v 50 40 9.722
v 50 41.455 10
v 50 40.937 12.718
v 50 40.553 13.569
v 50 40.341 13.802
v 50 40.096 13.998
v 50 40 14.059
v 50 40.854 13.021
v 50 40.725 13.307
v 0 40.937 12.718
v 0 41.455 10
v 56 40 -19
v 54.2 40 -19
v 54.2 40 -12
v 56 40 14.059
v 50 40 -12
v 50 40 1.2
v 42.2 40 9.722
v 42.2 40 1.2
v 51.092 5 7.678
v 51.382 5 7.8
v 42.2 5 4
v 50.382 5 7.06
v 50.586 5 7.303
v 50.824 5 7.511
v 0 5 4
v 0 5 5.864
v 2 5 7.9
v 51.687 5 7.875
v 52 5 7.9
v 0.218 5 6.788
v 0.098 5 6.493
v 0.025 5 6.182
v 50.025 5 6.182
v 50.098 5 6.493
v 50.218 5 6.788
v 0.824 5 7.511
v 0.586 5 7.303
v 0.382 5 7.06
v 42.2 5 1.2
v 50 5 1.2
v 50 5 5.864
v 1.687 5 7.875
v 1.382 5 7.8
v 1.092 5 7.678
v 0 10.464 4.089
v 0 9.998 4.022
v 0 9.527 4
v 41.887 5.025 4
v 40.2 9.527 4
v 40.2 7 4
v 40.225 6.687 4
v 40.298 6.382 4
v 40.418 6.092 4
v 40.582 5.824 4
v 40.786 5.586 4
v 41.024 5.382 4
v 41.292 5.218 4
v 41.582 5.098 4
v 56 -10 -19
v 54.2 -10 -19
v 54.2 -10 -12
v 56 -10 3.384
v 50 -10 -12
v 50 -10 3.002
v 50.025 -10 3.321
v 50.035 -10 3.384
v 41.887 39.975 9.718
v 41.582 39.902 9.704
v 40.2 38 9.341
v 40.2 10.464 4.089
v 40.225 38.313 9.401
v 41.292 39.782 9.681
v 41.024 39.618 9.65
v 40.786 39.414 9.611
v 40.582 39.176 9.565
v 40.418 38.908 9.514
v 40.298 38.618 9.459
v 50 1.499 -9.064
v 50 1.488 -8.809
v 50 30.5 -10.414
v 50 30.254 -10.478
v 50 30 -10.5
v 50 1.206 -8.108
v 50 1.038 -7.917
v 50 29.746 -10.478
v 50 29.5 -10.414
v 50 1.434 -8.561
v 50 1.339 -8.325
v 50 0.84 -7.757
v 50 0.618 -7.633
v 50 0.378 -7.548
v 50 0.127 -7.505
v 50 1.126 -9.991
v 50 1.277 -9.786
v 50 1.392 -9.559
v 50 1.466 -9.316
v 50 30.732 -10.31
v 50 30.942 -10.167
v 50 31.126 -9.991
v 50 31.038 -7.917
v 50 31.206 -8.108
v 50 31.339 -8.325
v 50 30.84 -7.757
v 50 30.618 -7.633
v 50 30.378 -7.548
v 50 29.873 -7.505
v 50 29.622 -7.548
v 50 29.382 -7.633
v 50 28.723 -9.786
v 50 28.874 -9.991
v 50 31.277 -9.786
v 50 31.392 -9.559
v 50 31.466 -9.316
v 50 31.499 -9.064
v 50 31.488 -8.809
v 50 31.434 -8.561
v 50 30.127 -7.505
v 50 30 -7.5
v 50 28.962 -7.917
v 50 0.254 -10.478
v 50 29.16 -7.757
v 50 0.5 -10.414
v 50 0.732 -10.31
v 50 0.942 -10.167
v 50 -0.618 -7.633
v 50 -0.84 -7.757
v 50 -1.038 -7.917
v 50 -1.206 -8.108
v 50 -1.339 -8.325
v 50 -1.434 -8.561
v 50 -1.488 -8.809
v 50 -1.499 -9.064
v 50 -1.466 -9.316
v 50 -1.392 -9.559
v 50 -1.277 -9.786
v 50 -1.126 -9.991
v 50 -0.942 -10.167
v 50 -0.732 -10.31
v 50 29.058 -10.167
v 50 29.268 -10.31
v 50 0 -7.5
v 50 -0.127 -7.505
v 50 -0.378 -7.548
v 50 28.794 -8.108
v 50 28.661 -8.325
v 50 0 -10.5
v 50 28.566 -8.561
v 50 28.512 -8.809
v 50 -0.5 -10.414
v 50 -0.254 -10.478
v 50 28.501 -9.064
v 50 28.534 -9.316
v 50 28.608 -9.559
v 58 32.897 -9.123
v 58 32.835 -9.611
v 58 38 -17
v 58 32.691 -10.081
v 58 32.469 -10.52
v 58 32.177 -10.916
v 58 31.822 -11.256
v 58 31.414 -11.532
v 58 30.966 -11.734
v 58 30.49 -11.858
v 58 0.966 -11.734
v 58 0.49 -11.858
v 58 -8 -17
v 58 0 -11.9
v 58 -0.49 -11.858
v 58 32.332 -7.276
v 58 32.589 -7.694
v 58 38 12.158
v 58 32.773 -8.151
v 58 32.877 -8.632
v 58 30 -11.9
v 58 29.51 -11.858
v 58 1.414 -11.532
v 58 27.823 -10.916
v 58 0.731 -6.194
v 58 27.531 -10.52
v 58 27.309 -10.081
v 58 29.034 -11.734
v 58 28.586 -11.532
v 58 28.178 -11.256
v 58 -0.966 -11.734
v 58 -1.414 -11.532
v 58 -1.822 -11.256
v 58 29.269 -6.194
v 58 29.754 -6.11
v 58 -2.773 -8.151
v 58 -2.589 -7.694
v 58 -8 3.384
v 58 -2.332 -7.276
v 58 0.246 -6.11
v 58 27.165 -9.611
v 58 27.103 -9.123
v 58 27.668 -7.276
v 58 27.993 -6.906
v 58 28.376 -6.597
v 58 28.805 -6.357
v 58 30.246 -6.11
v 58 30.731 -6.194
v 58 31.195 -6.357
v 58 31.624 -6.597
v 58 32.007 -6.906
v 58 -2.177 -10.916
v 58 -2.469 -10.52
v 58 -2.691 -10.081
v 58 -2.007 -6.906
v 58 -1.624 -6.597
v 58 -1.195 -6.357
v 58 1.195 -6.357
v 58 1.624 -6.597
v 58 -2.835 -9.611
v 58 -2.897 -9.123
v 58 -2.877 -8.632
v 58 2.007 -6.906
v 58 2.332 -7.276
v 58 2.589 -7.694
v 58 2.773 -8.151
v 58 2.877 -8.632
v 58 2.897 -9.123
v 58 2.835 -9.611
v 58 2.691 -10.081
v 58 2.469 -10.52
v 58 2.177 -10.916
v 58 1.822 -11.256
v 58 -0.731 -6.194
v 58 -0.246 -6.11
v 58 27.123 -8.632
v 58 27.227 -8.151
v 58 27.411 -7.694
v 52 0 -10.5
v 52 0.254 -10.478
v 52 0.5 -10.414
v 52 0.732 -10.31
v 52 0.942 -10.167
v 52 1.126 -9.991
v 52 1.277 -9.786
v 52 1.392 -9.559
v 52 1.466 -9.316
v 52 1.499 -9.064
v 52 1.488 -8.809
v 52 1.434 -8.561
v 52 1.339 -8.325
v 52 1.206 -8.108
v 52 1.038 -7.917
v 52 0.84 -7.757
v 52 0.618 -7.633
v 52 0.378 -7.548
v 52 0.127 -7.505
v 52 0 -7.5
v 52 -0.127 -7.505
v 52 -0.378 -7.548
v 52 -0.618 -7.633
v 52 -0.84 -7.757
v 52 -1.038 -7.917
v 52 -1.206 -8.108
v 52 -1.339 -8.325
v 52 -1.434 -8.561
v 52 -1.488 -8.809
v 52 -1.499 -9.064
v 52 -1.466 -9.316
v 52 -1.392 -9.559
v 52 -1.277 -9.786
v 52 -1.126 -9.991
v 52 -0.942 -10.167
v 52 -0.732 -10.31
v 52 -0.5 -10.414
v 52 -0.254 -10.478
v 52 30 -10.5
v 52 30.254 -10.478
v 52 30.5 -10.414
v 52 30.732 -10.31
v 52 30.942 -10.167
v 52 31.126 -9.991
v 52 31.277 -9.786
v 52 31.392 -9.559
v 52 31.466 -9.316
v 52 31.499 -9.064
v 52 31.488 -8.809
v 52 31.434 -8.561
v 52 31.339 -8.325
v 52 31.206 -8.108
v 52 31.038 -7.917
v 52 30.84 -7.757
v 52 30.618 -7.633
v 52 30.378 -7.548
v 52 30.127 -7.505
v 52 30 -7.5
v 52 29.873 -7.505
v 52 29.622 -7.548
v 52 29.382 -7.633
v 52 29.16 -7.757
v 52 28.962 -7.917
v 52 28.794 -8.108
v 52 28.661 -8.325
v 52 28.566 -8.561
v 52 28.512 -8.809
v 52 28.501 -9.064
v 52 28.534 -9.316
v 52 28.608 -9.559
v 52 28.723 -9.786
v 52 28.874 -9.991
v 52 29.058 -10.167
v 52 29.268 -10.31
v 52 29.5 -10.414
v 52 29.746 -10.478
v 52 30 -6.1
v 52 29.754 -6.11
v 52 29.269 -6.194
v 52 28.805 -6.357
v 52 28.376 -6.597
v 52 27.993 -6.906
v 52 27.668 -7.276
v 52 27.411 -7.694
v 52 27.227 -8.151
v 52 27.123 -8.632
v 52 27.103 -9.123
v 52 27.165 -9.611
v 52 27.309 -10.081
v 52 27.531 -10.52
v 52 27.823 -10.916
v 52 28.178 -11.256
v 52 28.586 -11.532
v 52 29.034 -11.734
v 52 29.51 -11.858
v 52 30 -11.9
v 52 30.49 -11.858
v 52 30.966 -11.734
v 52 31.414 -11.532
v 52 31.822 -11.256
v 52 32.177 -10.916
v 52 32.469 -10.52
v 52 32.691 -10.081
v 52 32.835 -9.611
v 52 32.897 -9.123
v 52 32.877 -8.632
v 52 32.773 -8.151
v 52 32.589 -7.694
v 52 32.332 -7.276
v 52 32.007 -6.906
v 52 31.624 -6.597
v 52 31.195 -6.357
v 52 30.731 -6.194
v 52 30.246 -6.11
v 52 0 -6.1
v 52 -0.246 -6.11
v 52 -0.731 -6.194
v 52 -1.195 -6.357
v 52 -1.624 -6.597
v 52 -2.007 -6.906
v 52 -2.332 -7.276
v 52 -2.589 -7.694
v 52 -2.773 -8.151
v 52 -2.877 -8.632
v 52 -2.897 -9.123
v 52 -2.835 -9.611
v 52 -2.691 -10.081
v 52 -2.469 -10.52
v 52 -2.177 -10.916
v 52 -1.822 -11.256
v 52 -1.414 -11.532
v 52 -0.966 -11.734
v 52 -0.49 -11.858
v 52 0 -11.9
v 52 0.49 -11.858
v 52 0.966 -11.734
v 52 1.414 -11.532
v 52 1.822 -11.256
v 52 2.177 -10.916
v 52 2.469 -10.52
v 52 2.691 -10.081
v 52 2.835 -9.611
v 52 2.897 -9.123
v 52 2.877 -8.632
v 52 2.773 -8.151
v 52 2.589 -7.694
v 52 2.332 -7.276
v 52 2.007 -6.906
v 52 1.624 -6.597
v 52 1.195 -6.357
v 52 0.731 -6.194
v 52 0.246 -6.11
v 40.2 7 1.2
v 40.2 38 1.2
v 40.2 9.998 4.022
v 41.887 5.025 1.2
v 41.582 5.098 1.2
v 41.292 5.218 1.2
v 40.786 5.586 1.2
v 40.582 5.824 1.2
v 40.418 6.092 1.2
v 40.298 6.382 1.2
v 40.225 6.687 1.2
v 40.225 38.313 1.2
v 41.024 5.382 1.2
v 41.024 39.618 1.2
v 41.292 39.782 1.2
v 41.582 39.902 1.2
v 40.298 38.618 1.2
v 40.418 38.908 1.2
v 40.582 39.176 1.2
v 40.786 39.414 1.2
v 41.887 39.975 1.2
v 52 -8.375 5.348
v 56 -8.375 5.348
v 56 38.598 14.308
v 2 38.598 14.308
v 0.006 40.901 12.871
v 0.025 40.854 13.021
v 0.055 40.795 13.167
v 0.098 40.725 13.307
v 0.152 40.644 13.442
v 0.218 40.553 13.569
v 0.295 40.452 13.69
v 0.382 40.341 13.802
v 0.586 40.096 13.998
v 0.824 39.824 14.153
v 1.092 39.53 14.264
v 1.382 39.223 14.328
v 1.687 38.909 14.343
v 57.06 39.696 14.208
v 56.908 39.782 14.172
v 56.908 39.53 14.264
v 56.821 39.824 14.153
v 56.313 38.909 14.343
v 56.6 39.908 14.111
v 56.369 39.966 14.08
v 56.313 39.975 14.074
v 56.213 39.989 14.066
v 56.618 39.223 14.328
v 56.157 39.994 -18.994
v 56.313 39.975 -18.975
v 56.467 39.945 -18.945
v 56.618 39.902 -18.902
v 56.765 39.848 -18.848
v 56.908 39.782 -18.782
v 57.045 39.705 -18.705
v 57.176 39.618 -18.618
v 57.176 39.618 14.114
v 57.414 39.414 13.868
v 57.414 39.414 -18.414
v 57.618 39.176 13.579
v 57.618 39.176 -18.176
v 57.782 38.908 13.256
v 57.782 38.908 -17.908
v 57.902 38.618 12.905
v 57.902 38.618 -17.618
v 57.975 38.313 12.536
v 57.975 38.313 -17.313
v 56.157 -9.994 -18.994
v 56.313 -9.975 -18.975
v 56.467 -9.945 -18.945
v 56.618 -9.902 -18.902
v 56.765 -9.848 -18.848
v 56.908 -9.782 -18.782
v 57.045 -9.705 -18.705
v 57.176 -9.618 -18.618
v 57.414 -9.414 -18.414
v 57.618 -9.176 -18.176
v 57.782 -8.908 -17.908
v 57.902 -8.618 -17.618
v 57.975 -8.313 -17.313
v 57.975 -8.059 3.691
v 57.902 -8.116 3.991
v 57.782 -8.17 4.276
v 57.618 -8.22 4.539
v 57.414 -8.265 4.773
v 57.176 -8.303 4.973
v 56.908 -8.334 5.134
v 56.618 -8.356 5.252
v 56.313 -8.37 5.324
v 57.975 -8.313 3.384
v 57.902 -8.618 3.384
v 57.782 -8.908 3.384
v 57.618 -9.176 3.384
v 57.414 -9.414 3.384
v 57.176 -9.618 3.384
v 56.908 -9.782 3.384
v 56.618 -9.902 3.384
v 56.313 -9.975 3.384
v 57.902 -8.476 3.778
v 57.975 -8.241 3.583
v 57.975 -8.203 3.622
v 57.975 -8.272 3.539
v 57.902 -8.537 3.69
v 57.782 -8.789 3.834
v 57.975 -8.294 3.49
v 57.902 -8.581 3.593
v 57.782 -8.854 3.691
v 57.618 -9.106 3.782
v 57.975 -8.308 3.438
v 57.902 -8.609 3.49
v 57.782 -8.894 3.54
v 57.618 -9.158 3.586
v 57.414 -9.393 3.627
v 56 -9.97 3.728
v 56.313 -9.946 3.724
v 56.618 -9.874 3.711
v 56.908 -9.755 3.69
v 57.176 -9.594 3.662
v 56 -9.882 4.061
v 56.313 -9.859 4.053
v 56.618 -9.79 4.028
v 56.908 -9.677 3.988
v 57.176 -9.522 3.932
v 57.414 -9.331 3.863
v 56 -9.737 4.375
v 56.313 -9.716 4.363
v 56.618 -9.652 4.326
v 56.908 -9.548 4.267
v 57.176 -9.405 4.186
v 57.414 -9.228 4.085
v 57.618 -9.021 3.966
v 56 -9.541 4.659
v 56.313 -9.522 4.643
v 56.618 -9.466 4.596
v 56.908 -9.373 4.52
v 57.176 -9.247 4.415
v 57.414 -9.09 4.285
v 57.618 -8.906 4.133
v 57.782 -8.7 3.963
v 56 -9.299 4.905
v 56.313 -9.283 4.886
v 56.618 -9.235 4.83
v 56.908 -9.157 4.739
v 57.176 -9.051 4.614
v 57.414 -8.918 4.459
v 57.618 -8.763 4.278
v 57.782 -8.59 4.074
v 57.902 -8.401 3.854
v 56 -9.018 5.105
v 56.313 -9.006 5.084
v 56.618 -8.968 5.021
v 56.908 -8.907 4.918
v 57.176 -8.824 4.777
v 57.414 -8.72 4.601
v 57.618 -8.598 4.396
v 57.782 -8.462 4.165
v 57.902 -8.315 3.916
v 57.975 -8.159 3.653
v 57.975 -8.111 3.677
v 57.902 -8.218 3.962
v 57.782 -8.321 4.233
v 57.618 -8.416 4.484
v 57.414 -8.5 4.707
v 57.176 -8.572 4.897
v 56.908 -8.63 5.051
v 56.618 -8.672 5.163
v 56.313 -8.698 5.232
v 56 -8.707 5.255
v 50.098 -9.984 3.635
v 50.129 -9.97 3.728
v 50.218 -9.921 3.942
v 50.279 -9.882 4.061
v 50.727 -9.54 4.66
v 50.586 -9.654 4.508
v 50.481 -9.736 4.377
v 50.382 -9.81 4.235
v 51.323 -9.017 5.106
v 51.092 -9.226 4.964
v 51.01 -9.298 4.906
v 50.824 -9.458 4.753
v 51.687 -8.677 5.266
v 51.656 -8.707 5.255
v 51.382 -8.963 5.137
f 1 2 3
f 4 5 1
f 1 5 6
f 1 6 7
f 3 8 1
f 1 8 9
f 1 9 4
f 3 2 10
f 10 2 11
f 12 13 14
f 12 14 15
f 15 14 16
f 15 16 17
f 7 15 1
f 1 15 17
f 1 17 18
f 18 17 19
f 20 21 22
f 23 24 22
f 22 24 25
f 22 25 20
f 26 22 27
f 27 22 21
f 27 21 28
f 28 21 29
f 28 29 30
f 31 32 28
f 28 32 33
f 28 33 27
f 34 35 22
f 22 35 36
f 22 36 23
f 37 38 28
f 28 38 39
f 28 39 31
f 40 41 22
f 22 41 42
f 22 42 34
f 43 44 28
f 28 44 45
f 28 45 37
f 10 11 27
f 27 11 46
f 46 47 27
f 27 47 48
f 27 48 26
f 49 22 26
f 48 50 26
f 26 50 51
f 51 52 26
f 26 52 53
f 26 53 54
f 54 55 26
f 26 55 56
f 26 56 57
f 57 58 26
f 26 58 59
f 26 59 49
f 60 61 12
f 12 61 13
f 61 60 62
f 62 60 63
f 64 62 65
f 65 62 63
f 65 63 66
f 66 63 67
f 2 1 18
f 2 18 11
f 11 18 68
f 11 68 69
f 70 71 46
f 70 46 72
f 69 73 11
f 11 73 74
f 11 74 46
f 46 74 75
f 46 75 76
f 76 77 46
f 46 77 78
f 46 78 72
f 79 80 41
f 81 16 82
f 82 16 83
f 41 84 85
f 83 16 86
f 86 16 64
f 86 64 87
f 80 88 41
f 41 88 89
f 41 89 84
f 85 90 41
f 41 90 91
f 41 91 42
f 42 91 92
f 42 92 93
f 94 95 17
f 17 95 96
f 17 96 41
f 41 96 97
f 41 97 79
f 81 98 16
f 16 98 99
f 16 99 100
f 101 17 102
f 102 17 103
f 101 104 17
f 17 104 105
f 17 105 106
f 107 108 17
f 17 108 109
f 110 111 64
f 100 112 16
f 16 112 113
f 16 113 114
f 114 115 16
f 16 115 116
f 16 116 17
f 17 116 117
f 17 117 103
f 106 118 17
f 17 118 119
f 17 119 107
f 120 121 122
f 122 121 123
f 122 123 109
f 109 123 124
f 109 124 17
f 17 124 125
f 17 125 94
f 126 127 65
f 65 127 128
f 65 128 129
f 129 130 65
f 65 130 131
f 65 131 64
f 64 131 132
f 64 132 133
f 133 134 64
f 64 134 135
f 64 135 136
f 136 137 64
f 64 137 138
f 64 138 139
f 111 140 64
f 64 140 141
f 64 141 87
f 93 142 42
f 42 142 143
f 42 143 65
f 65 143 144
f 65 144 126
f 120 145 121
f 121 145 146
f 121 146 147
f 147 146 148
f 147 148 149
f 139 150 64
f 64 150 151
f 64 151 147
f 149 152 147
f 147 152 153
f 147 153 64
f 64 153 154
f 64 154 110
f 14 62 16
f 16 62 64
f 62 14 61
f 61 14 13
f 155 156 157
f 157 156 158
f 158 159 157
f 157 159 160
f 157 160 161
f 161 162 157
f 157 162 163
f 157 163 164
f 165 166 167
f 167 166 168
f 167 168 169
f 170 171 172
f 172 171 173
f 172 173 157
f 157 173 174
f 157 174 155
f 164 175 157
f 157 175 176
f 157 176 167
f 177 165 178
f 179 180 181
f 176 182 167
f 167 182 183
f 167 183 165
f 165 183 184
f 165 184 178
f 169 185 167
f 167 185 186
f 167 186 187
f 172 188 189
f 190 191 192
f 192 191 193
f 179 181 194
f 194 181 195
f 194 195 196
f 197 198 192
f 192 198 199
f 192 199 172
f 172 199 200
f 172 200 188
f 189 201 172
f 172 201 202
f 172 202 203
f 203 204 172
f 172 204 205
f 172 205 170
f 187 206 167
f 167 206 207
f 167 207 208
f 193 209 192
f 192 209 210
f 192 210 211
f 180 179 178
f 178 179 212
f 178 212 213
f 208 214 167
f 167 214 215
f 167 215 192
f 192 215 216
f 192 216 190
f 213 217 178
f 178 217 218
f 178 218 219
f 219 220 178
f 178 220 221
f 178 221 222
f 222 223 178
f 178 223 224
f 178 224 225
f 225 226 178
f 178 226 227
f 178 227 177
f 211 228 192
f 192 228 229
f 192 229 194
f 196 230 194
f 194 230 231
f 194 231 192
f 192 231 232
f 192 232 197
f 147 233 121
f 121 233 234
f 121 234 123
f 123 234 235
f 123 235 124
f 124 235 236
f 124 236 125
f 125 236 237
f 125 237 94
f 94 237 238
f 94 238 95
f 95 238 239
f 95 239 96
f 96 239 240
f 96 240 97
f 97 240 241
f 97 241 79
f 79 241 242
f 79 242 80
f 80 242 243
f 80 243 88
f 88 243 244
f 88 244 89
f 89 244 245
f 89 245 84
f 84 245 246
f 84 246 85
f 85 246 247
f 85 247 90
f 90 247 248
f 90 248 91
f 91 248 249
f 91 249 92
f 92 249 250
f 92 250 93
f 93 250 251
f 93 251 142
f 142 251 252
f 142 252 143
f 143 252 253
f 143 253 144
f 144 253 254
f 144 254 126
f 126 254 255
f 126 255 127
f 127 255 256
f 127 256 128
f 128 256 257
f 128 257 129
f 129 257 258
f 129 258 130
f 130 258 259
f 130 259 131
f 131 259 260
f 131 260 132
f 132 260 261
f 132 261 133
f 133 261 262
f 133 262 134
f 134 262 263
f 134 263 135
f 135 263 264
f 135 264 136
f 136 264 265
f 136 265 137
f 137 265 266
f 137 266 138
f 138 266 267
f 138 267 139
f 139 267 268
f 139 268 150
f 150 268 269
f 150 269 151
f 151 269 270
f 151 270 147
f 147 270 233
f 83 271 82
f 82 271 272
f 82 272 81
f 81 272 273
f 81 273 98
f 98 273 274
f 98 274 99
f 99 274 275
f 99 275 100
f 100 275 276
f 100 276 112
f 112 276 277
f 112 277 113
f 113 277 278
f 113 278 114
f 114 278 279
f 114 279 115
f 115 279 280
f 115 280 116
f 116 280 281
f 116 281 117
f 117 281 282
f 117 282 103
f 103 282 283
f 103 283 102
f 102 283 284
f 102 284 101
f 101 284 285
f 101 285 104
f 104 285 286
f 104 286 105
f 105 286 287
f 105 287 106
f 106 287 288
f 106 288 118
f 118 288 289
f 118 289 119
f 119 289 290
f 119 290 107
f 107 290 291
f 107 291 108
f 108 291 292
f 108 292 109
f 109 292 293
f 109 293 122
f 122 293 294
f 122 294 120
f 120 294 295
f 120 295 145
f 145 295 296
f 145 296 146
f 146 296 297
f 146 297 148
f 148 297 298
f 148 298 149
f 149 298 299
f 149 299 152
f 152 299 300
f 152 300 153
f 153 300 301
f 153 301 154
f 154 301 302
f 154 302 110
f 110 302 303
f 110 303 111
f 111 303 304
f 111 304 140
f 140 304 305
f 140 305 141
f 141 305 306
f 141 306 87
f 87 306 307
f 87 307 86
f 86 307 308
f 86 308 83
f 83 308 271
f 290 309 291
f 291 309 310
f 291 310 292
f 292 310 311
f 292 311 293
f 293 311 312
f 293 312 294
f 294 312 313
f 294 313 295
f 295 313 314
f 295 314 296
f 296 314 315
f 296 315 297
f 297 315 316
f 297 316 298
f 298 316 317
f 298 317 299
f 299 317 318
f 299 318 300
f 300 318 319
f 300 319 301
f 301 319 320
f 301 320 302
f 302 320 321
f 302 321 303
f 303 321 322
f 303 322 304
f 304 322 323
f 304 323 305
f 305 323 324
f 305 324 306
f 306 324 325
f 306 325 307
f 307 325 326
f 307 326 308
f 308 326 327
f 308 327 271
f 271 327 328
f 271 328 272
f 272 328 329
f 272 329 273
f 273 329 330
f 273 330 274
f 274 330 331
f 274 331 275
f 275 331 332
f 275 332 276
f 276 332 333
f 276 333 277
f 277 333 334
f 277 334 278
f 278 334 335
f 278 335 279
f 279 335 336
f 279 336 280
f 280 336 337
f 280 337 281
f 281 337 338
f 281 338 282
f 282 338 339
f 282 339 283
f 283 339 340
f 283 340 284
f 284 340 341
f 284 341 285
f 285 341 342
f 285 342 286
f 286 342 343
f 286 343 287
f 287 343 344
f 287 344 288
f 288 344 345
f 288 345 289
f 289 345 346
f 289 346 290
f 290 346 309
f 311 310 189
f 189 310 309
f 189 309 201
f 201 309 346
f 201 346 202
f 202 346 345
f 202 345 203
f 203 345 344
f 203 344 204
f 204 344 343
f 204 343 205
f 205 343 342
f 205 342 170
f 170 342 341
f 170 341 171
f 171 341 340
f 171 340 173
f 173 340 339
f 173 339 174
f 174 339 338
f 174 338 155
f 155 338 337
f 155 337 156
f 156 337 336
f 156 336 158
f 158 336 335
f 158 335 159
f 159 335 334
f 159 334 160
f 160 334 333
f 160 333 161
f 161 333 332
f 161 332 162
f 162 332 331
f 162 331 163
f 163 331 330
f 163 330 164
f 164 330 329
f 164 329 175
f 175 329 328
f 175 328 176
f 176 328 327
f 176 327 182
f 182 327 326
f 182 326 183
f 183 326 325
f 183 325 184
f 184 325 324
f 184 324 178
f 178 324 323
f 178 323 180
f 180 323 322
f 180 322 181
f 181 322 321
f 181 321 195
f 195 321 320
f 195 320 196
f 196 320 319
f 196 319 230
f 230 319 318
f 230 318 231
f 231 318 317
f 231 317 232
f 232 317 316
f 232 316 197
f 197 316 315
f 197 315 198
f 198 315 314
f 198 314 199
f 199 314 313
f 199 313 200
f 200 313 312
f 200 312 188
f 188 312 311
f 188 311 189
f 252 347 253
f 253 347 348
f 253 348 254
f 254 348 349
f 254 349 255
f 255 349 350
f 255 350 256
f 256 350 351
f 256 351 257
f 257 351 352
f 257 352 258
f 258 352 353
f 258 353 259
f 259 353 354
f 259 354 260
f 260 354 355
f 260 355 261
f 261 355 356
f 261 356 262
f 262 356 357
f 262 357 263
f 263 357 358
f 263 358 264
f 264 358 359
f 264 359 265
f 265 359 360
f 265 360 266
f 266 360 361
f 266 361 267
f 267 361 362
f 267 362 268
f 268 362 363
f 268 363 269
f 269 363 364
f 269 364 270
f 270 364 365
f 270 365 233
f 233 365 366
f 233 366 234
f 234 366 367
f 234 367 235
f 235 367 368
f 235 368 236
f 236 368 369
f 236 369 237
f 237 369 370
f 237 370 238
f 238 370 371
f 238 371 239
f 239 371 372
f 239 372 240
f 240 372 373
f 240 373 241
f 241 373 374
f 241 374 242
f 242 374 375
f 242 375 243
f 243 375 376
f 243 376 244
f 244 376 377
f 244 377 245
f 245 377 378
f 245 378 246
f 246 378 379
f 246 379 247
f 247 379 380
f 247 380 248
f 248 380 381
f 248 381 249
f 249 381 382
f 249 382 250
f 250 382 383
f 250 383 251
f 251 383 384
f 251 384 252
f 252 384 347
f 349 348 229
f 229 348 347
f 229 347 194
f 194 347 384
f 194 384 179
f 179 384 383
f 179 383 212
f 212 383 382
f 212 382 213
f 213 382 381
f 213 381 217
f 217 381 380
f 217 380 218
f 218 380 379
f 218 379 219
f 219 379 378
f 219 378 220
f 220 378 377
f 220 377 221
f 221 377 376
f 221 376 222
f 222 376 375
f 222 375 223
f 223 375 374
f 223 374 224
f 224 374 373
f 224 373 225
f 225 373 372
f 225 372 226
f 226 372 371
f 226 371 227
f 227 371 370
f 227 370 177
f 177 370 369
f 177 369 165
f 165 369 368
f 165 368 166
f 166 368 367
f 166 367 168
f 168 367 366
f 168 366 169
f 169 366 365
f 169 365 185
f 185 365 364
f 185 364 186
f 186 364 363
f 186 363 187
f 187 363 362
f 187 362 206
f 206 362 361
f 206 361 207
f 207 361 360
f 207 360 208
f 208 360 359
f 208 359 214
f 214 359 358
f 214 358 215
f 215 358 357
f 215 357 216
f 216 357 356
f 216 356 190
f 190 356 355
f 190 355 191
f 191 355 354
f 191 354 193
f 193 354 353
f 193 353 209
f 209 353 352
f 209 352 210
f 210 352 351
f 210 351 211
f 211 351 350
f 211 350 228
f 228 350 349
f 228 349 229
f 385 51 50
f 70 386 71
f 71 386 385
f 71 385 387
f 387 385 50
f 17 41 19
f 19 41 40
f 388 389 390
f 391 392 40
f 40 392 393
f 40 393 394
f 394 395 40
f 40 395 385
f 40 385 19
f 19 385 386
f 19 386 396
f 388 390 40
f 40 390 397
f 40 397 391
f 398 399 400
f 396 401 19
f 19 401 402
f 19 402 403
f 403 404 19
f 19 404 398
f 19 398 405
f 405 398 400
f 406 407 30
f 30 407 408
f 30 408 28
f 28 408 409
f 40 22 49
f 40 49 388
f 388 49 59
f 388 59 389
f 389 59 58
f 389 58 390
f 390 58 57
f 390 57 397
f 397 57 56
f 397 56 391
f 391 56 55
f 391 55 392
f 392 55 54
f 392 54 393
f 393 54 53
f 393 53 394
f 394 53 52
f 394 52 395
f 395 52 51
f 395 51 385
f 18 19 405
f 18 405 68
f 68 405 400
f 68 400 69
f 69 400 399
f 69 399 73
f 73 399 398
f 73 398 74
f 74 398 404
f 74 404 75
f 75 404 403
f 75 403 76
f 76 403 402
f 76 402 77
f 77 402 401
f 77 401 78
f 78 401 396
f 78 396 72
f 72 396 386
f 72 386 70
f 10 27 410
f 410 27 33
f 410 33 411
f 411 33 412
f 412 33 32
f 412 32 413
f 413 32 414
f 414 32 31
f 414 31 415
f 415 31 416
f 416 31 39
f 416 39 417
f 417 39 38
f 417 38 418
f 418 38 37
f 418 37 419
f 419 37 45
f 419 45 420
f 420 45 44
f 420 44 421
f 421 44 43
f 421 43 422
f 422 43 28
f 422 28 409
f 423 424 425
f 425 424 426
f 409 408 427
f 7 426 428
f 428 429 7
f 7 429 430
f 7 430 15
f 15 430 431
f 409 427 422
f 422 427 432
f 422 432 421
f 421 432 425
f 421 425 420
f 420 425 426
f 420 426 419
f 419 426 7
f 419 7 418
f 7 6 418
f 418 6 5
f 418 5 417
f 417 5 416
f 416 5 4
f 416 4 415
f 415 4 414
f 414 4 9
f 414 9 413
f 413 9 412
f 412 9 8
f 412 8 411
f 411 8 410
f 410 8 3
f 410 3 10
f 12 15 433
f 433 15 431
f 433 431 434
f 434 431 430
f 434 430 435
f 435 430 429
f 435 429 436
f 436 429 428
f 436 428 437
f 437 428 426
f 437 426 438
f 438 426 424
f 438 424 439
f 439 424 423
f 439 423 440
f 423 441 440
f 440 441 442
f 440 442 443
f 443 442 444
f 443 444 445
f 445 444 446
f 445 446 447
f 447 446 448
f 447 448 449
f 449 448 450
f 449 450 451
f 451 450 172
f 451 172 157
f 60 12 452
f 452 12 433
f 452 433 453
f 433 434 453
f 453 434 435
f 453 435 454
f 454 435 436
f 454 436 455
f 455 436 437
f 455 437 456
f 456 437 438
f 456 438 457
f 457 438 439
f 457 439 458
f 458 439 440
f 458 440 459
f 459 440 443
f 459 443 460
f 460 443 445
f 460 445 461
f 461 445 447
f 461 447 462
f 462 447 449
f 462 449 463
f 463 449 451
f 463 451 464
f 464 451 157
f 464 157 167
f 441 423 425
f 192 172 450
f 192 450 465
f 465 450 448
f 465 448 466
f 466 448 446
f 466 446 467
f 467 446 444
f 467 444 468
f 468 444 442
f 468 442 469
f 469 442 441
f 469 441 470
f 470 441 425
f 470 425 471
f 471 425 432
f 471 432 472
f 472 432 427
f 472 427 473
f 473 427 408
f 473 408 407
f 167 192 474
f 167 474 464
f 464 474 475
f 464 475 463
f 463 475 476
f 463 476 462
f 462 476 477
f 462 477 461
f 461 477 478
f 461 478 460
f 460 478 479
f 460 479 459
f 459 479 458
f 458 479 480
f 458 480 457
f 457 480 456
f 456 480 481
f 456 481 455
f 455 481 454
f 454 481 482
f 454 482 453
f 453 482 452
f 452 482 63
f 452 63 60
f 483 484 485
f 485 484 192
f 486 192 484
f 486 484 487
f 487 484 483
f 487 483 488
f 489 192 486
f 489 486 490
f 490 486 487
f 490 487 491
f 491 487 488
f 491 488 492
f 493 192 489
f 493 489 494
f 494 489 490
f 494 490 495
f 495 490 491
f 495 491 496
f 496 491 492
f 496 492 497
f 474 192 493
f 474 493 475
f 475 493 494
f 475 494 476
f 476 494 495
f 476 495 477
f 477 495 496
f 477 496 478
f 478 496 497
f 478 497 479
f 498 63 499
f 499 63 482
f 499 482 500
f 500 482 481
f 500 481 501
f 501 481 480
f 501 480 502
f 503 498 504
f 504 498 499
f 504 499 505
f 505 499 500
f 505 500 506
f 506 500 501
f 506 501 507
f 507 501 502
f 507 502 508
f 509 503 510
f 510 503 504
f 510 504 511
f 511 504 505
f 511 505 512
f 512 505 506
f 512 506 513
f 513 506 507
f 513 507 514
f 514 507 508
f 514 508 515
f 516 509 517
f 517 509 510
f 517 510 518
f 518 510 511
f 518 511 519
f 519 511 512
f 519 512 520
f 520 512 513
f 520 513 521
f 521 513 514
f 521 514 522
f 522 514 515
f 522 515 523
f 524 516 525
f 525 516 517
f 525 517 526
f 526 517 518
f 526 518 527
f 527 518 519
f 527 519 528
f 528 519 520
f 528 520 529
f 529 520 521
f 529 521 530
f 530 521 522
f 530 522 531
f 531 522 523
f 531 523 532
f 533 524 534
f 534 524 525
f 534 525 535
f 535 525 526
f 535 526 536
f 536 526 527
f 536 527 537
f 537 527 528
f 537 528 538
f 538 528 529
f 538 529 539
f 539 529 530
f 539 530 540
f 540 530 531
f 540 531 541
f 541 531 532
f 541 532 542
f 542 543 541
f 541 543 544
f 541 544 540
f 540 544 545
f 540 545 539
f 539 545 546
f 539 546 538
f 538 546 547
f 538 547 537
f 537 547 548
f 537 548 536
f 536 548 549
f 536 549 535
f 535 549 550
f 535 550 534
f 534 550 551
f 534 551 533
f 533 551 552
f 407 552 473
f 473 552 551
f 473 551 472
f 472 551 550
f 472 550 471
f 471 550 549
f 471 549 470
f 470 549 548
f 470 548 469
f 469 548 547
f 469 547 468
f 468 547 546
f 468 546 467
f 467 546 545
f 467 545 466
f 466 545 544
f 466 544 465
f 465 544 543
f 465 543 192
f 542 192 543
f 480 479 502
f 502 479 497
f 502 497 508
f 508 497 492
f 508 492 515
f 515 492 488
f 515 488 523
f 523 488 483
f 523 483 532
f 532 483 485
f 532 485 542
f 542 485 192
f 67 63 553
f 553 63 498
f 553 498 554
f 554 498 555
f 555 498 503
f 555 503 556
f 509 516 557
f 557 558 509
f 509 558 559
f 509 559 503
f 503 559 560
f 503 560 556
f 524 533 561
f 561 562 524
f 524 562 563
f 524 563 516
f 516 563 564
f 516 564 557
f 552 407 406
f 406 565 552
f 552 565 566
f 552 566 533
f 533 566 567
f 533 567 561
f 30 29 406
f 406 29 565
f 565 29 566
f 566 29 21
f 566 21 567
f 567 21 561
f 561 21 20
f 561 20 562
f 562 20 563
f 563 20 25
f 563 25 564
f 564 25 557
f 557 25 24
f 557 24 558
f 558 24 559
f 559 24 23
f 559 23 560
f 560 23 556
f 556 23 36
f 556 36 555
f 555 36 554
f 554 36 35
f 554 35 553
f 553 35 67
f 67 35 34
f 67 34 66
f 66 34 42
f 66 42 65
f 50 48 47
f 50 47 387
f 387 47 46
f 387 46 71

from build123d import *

# Parameters (mm, degrees)
EXTRUDE_1_DEPTH      = 50
SKETCH_2_W           = 50
SKETCH_2_H           = 10
EXTRUDE_2_DEPTH      = 10
SKETCH_3_W           = 10
SKETCH_3_H           = 20
EXTRUDE_3_DEPTH      = 20
SKETCH_4_W           = 20
SKETCH_4_H           = 10
EXTRUDE_4_DEPTH      = 30
CUT_EXTRUDE_1_DEPTH  = 50
CHAMFER_1_SIZE       = 2
SKETCH_9_R           = 1.5
CUT_EXTRUDE_2_DEPTH  = 66.715656955
CUT_EXTRUDE_4_DEPTH  = 6
SKETCH_13_W          = 4
SKETCH_13_H          = 6
EXTRUDE_12_DEPTH     = 18.003980276
SKETCH_15_W          = 20
SKETCH_15_H          = 50
SKETCH_15_R          = 1.5
EXTRUDE_14_DEPTH     = 4
CUT_EXTRUDE_5_DEPTH  = 4
SKETCH_17_W          = 20
SKETCH_17_H          = 20
EXTRUDE_15_DEPTH     = 6
SKETCH_18_W          = 50
SKETCH_18_H          = 4
CUT_EXTRUDE_6_DEPTH  = 20
SKETCH_19_W          = 4
SKETCH_19_H          = 4
CUT_EXTRUDE_9_DEPTH  = 18.003980276
EXTRUDE_16_REACH     = 84.488
SKETCH_20_W          = 5
SKETCH_20_H          = 30
EXTRUDE_17_DEPTH     = 18.003980276
SKETCH_22_W          = 60
SKETCH_22_H          = 10
CUT_EXTRUDE_10_DEPTH = 6
SKETCH_23_R          = 1.5
CUT_EXTRUDE_11_DEPTH = 4
CHAMFER_2_SIZE       = 1
SKETCH_24_R          = 3
CUT_EXTRUDE_12_DEPTH = 2
SKETCH_25_W          = 15
SKETCH_25_H          = 50
CUT_EXTRUDE_13_DEPTH = 10
SKETCH_26_W          = 5
SKETCH_26_H          = 50
EXTRUDE_18_DEPTH     = 19
SKETCH_27_W          = 7
SKETCH_27_H          = 50
CUT_EXTRUDE_14_DEPTH = 4.2
EXTRUDE_19_DEPTH     = 3
SKETCH_29_R          = 1.5
CUT_EXTRUDE_15_DEPTH = 13
SKETCH_30_R          = 2.9
CUT_EXTRUDE_16_DEPTH = 6
SKETCH_31_W          = 6
SKETCH_31_H          = 10
CUT_EXTRUDE_17_DEPTH = 10
SKETCH_32_W          = 8
SKETCH_32_H          = 10
EXTRUDE_20_DEPTH     = 6
SKETCH_33_W          = 50
SKETCH_33_H          = 5
CUT_EXTRUDE_18_DEPTH = 6
EXTRUDE_21_REACH     = 80.899
SKETCH_34_W          = 9.8
SKETCH_34_H          = 8.8
CUT_EXTRUDE_19_DEPTH = 3
SKETCH_36_W          = 58
SKETCH_36_H          = 4.873682846
CUT_EXTRUDE_20_DEPTH = 24
SKETCH_37_W          = 8
SKETCH_37_H          = 3
CUT_EXTRUDE_21_DEPTH = 24
FILLET_1_R           = 2
FILLET_2_R           = 2
FILLET_3_R           = 5


with BuildPart() as part:
    # 草图1 → 凸台-拉伸1 (new body)
    with BuildSketch(Plane(origin=(0, 0, 0), x_dir=(0, 0, -1), z_dir=(1, 0, 0))):
        Polygon((0, 0), (-10, 0), (-17.629858184, 40), (-10, 41.455368398), (-4, 10), (0, 10), align=None)
    extrude(amount=EXTRUDE_1_DEPTH)

    # 草图2 → 凸台-拉伸2 (add)
    with BuildSketch(Plane.XZ):
        with Locations((25, 5)):
            Rectangle(SKETCH_2_W, SKETCH_2_H)
    extrude(amount=EXTRUDE_2_DEPTH)

    # 草图3 → 凸台-拉伸3 (add)
    with BuildSketch(Plane.ZY):
        with Locations((5, 0)):
            Rectangle(SKETCH_3_W, SKETCH_3_H)
    extrude(amount=EXTRUDE_3_DEPTH)

    # 草图4 → 凸台-拉伸4 (add)
    with BuildSketch(Plane(origin=(0, 10, 0), x_dir=(1, 0, 0), z_dir=(0, 1, 0))):
        with Locations((-10, -5)):
            Rectangle(SKETCH_4_W, SKETCH_4_H)
    extrude(amount=EXTRUDE_4_DEPTH)

    # 草图5 → 切除-拉伸1 (cut)
    with BuildSketch(Plane(origin=(50, 0, 0), x_dir=(0, 0, -1), z_dir=(1, 0, 0))):
        Polygon((-10, 10.003980276), (-11.908223769, 10.003980276), (-10, 0), align=None)
    extrude(amount=-CUT_EXTRUDE_1_DEPTH, mode=Mode.SUBTRACT)

    # 倒角1
    # the kernel refuses this chamfer: 2 mm, written as the material it adds along each edge
    with BuildSketch(Plane(origin=(50, 10.003980276, 10), x_dir=(0, 0.027495876610586487, 0.9996219169112968), z_dir=(-1, 0, 0))) as chamfer_1_piece_1_section:
        Polygon((CHAMFER_1_SIZE * 0.999621916911, -CHAMFER_1_SIZE * 0.0274958766106), (-CHAMFER_1_SIZE * 0.0274958766106, -CHAMFER_1_SIZE * 0.999621916911), (0, 0), align=None)
    chamfer_1_piece_1 = extrude(amount=50, mode=Mode.PRIVATE)
    chamfer_1_piece_1 = split(chamfer_1_piece_1, bisect_by=Plane(origin=(25, 9.131023425, 11.741710345), z_dir=(0, 0.18736828457892524, -0.9822897362458548)), keep=Keep.TOP, mode=Mode.PRIVATE)
    add(chamfer_1_piece_1)

    # 草图9 → 切除-拉伸2 (cut, through all)
    with BuildSketch(Plane.XY.offset(10)):
        with Locations((-10, 30)):
            Circle(SKETCH_9_R)
        with Locations((-10, 0)):
            Circle(SKETCH_9_R)
    extrude(amount=-CUT_EXTRUDE_2_DEPTH, mode=Mode.SUBTRACT)

    # 草图12 → 切除-拉伸4 (cut)
    with BuildSketch(Plane.XY.offset(10)):
        Polygon((50, -10), (50, 8.003980276), (0, 8.003980276), (0, 40), (-20, 40), (-20, -10), align=None)
    extrude(amount=-CUT_EXTRUDE_4_DEPTH, mode=Mode.SUBTRACT)

    # 草图13 → 凸台-拉伸12 (add)
    with BuildSketch(Plane.XZ.offset(-8.003980276)):
        with Locations((2, 7)):
            Rectangle(SKETCH_13_W, SKETCH_13_H)
        with Locations((48, 7)):
            Rectangle(SKETCH_13_W, SKETCH_13_H)
    extrude(amount=EXTRUDE_12_DEPTH)

    # 草图15 → 凸台-拉伸14 (add)
    with BuildSketch(Plane(origin=(0, 0, 0), x_dir=(-1, 0, 0), z_dir=(0, 0, -1))):
        with Locations((-60, 15)):
            Rectangle(SKETCH_15_W, SKETCH_15_H)
        with Locations(Location((-60, 30, 0), (0, 0, 180))):
            Circle(SKETCH_15_R, mode=Mode.SUBTRACT)
    extrude(amount=-EXTRUDE_14_DEPTH)

    # 草图16 → 切除-拉伸5 (cut)
    with BuildSketch(Plane.XY.offset(4)):
        Polygon((-20, -10), (0, -10), (0, 10), (0, 40), (-20, 40), align=None)
    extrude(amount=-CUT_EXTRUDE_5_DEPTH, mode=Mode.SUBTRACT)

    # 草图17 → 凸台-拉伸15 (add)
    with BuildSketch(Plane.XY.offset(4)):
        with Locations((60, 0)):
            Rectangle(SKETCH_17_W, SKETCH_17_H)
    extrude(amount=EXTRUDE_15_DEPTH)

    # 草图18 → 切除-拉伸6 (cut)
    with BuildSketch(Plane(origin=(0, 10, 0), x_dir=(1, 0, 0), z_dir=(0, 1, 0))):
        with Locations((25, -2)):
            Rectangle(SKETCH_18_W, SKETCH_18_H)
    extrude(amount=-CUT_EXTRUDE_6_DEPTH, mode=Mode.SUBTRACT)

    # 草图19 → 切除-拉伸9 (cut)
    with BuildSketch(Plane.XZ.offset(10)):
        with Locations((48, 8)):
            Rectangle(SKETCH_19_W, SKETCH_19_H)
        with Locations((2, 8)):
            Rectangle(SKETCH_19_W, SKETCH_19_H)
    extrude(amount=-CUT_EXTRUDE_9_DEPTH, mode=Mode.SUBTRACT)

    # 凸台-拉伸16: up to this plane
    extrude_16_end = Plane(origin=(50, 0, 10), z_dir=(0, 0.18736828457892524, -0.9822897362458548))
    # 草图20 → 凸台-拉伸16 (add, up to the surface)
    with BuildSketch(Plane.XY.offset(4), mode=Mode.PRIVATE) as extrude_16_sk1:
        with Locations((52.5, 25)):
            Rectangle(SKETCH_20_W, SKETCH_20_H)
    extrude_16_tool1 = split(extrude(extrude_16_sk1.sketch, amount=EXTRUDE_16_REACH, mode=Mode.PRIVATE), bisect_by=extrude_16_end, keep=Keep.BOTH, mode=Mode.PRIVATE)
    add(extrude_16_tool1.solids().sort_by_distance((52.5, 25, 4))[0])

    # 草图21 → 凸台-拉伸17 (add)
    with BuildSketch(Plane.XZ.offset(-8.003980276)):
        Polygon((50, 6), (50, 10), (0, 10), (0, 6), (4, 6), (4, 4), (46, 4), (46, 6), align=None)
    extrude(amount=EXTRUDE_17_DEPTH)

    # 草图22 → 切除-拉伸10 (cut)
    with BuildSketch(Plane.XY.offset(10)):
        with Locations((40, 0)):
            Rectangle(SKETCH_22_W, SKETCH_22_H)
    extrude(amount=-CUT_EXTRUDE_10_DEPTH, mode=Mode.SUBTRACT)

    # 草图23 → 切除-拉伸11 (cut)
    with BuildSketch(Plane(origin=(0, 0, 0), x_dir=(-1, 0, 0), z_dir=(0, 0, -1))):
        with Locations((-60, 0)):
            Circle(SKETCH_23_R)
    extrude(amount=-CUT_EXTRUDE_11_DEPTH, mode=Mode.SUBTRACT)

    # 倒角2
    chamfer_2_edges = [part.edges().sort_by_distance(p)[0] for p in [
        (52.5, 10, 10),
    ]]
    chamfer(chamfer_2_edges, length=CHAMFER_2_SIZE)

    # 草图24 → 切除-拉伸12 (cut)
    with BuildSketch(Plane.XY.offset(4)):
        with Locations((60, 30)):
            Circle(SKETCH_24_R)
        with Locations((60, 0)):
            Circle(SKETCH_24_R)
    extrude(amount=-CUT_EXTRUDE_12_DEPTH, mode=Mode.SUBTRACT)

    # 草图25 → 切除-拉伸13 (cut)
    with BuildSketch(Plane.XY.offset(10)):
        with Locations((62.5, 15)):
            Rectangle(SKETCH_25_W, SKETCH_25_H)
    extrude(amount=-CUT_EXTRUDE_13_DEPTH, mode=Mode.SUBTRACT)

    # 草图26 → 凸台-拉伸18 (add)
    with BuildSketch(Plane(origin=(0, 0, 0), x_dir=(-1, 0, 0), z_dir=(0, 0, -1))):
        with Locations((-52.5, 15)):
            Rectangle(SKETCH_26_W, SKETCH_26_H)
    extrude(amount=EXTRUDE_18_DEPTH)

    # 草图27 → 切除-拉伸14 (cut)
    with BuildSketch(Plane.ZY.offset(-50)):
        with Locations((-15.5, 15)):
            Rectangle(SKETCH_27_W, SKETCH_27_H)
    extrude(amount=-CUT_EXTRUDE_14_DEPTH, mode=Mode.SUBTRACT)

    # 草图28 → 凸台-拉伸19 (add)
    with BuildSketch(Plane(origin=(55, 0, 0), x_dir=(0, 0, -1), z_dir=(1, 0, 0))):
        Polygon((-10, -5), (-10, -10), (19, -10), (19, 40), (-17.629858184, 40), (-11.907464546, 10), (-11, 10), (-10, 9), (-10, 5), (-4, 5), (-4, -5), align=None)
    extrude(amount=EXTRUDE_19_DEPTH)

    # 草图29 → 切除-拉伸15 (cut)
    with BuildSketch(Plane(origin=(58, 0, 0), x_dir=(0, 0, -1), z_dir=(1, 0, 0))):
        with Locations((9, 30)):
            Circle(SKETCH_29_R)
        with Locations((9, 0)):
            Circle(SKETCH_29_R)
    extrude(amount=-CUT_EXTRUDE_15_DEPTH, mode=Mode.SUBTRACT)

    # 草图30 → 切除-拉伸16 (cut)
    with BuildSketch(Plane(origin=(58, 0, 0), x_dir=(0, 0, -1), z_dir=(1, 0, 0))):
        with Locations((9, 30)):
            Circle(SKETCH_30_R)
        with Locations((9, 0)):
            Circle(SKETCH_30_R)
    extrude(amount=-CUT_EXTRUDE_16_DEPTH, mode=Mode.SUBTRACT)

    # 草图31 → 切除-拉伸17 (cut)
    with BuildSketch(Plane(origin=(10, 0, 0), x_dir=(0, 0, -1), z_dir=(1, 0, 0))):
        with Locations((-7, 0)):
            Rectangle(SKETCH_31_W, SKETCH_31_H)
    extrude(amount=-CUT_EXTRUDE_17_DEPTH, mode=Mode.SUBTRACT)

    # 草图32 → 凸台-拉伸20 (add)
    with BuildSketch(Plane.XY.offset(4)):
        with Locations((54, 0)):
            Rectangle(SKETCH_32_W, SKETCH_32_H)
    extrude(amount=EXTRUDE_20_DEPTH)

    # 草图33 → 切除-拉伸18 (cut)
    with BuildSketch(Plane.XY.offset(10)):
        with Locations((25, -7.5)):
            Rectangle(SKETCH_33_W, SKETCH_33_H)
    extrude(amount=-CUT_EXTRUDE_18_DEPTH, mode=Mode.SUBTRACT)

    # 凸台-拉伸21: up to this face of the body (flat: up to its plane)
    extrude_21_end = Plane(part.part.faces().sort_by_distance((25, 5, 7))[0])
    # 草图34 → 凸台-拉伸21 (add, up to the picked face)
    with BuildSketch(Plane(origin=(0, 40, 0), x_dir=(1, 0, 0), z_dir=(0, 1, 0)), mode=Mode.PRIVATE) as extrude_21_sk1:
        with Locations((45.1, -5.6)):
            Rectangle(SKETCH_34_W, SKETCH_34_H)
    extrude_21_tool1 = split(extrude(extrude_21_sk1.sketch, amount=-EXTRUDE_21_REACH, mode=Mode.PRIVATE), bisect_by=extrude_21_end, keep=Keep.BOTH, mode=Mode.PRIVATE)
    add(extrude_21_tool1.solids().sort_by(Axis((45.1, 40, 5.6), (0, -1, 0)))[0])

    # 草图35 → 切除-拉伸19 (cut)
    with BuildSketch(Plane(origin=(0, -1.840499428, 9.648931259), x_dir=(1, 0, 0), z_dir=(0, -0.18736828457892524, 0.9822897362458548))):
        Polygon((0, 42.594865735), (0, 11.9425774), (50, 11.9425774), (50, 12.053978568), (58, 12.053978568), (58, 42.594865735), (50, 42.594865735), align=None)
    extrude(amount=-CUT_EXTRUDE_19_DEPTH, mode=Mode.SUBTRACT)

    # 草图36 → 切除-拉伸20 (cut)
    with BuildSketch(Plane(origin=(0, 11.731071204, 2.237660241), x_dir=(1, 0, 0), z_dir=(0, 0.9822897362458547, 0.18736828457892518))):
        with Locations((29, -9.259738785)):
            Rectangle(SKETCH_36_W, SKETCH_36_H)
    extrude(amount=-CUT_EXTRUDE_20_DEPTH, mode=Mode.SUBTRACT)

    # 草图37 → 切除-拉伸21 (cut)
    with BuildSketch(Plane(origin=(0, 11.840499428, 2.258533287), x_dir=(1, 0, 0), z_dir=(0, 0.9822897362458547, 0.18736828457892518))):
        with Locations((54, -8.322897362)):
            Rectangle(SKETCH_37_W, SKETCH_37_H)
    extrude(amount=-CUT_EXTRUDE_21_DEPTH, mode=Mode.SUBTRACT)

    # 圆角1
    fillet_1_edges = [part.edges().sort_by_distance(p)[0] for p in [
        (40.2, 40, 5.461196819),
        (40.2, 5, 2.6),
    ]]
    fillet(fillet_1_edges, radius=FILLET_1_R)

    # 圆角2
    # the kernel refuses this fillet: 2 mm, written as the material it takes off along each edge
    with BuildSketch(Plane(origin=(56, -8, 3.383880502), x_dir=(0, -1, 0), z_dir=(1, 0, 0))) as fillet_2_piece_1_section:
        Polygon((0, 0), (FILLET_2_R * 1.02, 0), (FILLET_2_R * 1.02, -FILLET_2_R * 0.843828779986), (FILLET_2_R * 0.191115650271, -FILLET_2_R * 1.00193553097), align=None)
    fillet_2_piece_1 = extrude(amount=FILLET_2_R * 1.02, mode=Mode.PRIVATE)
    fillet_2_piece_1 = fillet_2_piece_1 - Plane(origin=(56, -8, 3.383880502), x_dir=(0, 0.7705090150604746, -0.637429100144116), z_dir=(1, 0, 0)) * Sphere(FILLET_2_R, mode=Mode.PRIVATE)
    add(fillet_2_piece_1, mode=Mode.SUBTRACT)
    with BuildSketch(Plane(origin=(50, -21.787476835, 2.790027322), x_dir=(0, 0.1873682845789252, -0.9822897362458548), z_dir=(0, 0.9822897362458548, 0.1873682845789252))) as fillet_2_piece_2_section:
        with BuildLine():
            CenterArc((FILLET_2_R, -FILLET_2_R), FILLET_2_R, 90, 90)
            Line((0, -FILLET_2_R), (-FILLET_2_R * 0.02, -FILLET_2_R))
            Line((-FILLET_2_R * 0.02, -FILLET_2_R), (-FILLET_2_R * 0.02, FILLET_2_R * 0.02))
            Line((-FILLET_2_R * 0.02, FILLET_2_R * 0.02), (FILLET_2_R, FILLET_2_R * 0.02))
            Line((FILLET_2_R, FILLET_2_R * 0.02), (FILLET_2_R, 0))
        make_face()
    fillet_2_piece_2 = extrude(amount=39.270443584, mode=Mode.PRIVATE)
    fillet_2_piece_2 = split(fillet_2_piece_2, bisect_by=Plane(origin=(50.453560867, 5, 4.893277607), z_dir=(0, -1, 0)), keep=Keep.TOP, mode=Mode.PRIVATE)
    add(fillet_2_piece_2, mode=Mode.SUBTRACT)
    with BuildSketch(Plane(origin=(56, -10, 5.038446737), x_dir=(0, 0, -1), z_dir=(-1, 0, 0))) as fillet_2_piece_3:
        with BuildLine():
            CenterArc((FILLET_2_R * 0.827283117634, -FILLET_2_R), FILLET_2_R, 90, 79.200760026)
            Line((-FILLET_2_R * 0.155006618612, -FILLET_2_R * 0.812631715421), (-FILLET_2_R * 0.174652413337, -FILLET_2_R * 0.808884349729))
            Line((-FILLET_2_R * 0.174652413337, -FILLET_2_R * 0.808884349729), (-FILLET_2_R * 0.0165456623527, FILLET_2_R * 0.02))
            Line((-FILLET_2_R * 0.0165456623527, FILLET_2_R * 0.02), (FILLET_2_R * 0.827283117634, FILLET_2_R * 0.02))
            Line((FILLET_2_R * 0.827283117634, FILLET_2_R * 0.02), (FILLET_2_R * 0.827283117634, 0))
        make_face()
    extrude(amount=15.927397412, mode=Mode.SUBTRACT)
    with BuildSketch(Plane(origin=(58, -8.374736569, 5.348459975), x_dir=(3.552713678800502e-15, 0.18736828457892515, -0.9822897362458548), z_dir=(0, 0.9822897362458548, 0.18736828457892515))) as fillet_2_piece_4:
        with BuildLine():
            CenterArc((FILLET_2_R, FILLET_2_R), FILLET_2_R, 180, 90)
            Line((0, FILLET_2_R), (-FILLET_2_R * 0.02, FILLET_2_R))
            Line((-FILLET_2_R * 0.02, FILLET_2_R), (-FILLET_2_R * 0.02, -FILLET_2_R * 0.02))
            Line((-FILLET_2_R * 0.02, -FILLET_2_R * 0.02), (FILLET_2_R, -FILLET_2_R * 0.02))
            Line((FILLET_2_R, -FILLET_2_R * 0.02), (FILLET_2_R, 0))
        make_face()
    extrude(amount=61.246912376, mode=Mode.SUBTRACT)
    with BuildSketch(Plane(origin=(58, 40, -31), x_dir=(-1, 0, 0), z_dir=(0, 0, 1))) as fillet_2_piece_5:
        with BuildLine():
            CenterArc((FILLET_2_R, FILLET_2_R), FILLET_2_R, 180, 90)
            Line((0, FILLET_2_R), (-FILLET_2_R * 0.02, FILLET_2_R))
            Line((-FILLET_2_R * 0.02, FILLET_2_R), (-FILLET_2_R * 0.02, -FILLET_2_R * 0.02))
            Line((-FILLET_2_R * 0.02, -FILLET_2_R * 0.02), (FILLET_2_R, -FILLET_2_R * 0.02))
            Line((FILLET_2_R, -FILLET_2_R * 0.02), (FILLET_2_R, 0))
        make_face()
    extrude(amount=57.575769467, mode=Mode.SUBTRACT)
    with BuildSketch(Plane(origin=(58, -10, 3.383880502), x_dir=(-1, 0, 0), z_dir=(0, 0, -1))) as fillet_2_piece_6:
        with BuildLine():
            CenterArc((FILLET_2_R, FILLET_2_R), FILLET_2_R, 180, 90)
            Line((0, FILLET_2_R), (-FILLET_2_R * 0.02, FILLET_2_R))
            Line((-FILLET_2_R * 0.02, FILLET_2_R), (-FILLET_2_R * 0.02, -FILLET_2_R * 0.02))
            Line((-FILLET_2_R * 0.02, -FILLET_2_R * 0.02), (FILLET_2_R, -FILLET_2_R * 0.02))
            Line((FILLET_2_R, -FILLET_2_R * 0.02), (FILLET_2_R, 0))
        make_face()
    extrude(amount=34.383880502, mode=Mode.SUBTRACT)
    with BuildSketch(Plane(origin=(58, -22, -19), x_dir=(-1, 0, 0), z_dir=(0, 1, 0)), Plane(origin=(62, 40.562104854, 14.682988975), x_dir=(0, 0.1873682845789233, -0.9822897362458551), z_dir=(-1, 0, 0))) as fillet_2_piece_7:
        with BuildLine():
            CenterArc((FILLET_2_R, FILLET_2_R), FILLET_2_R, 180, 90)
            Line((0, FILLET_2_R), (-FILLET_2_R * 0.02, FILLET_2_R))
            Line((-FILLET_2_R * 0.02, FILLET_2_R), (-FILLET_2_R * 0.02, -FILLET_2_R * 0.02))
            Line((-FILLET_2_R * 0.02, -FILLET_2_R * 0.02), (FILLET_2_R, -FILLET_2_R * 0.02))
            Line((FILLET_2_R, -FILLET_2_R * 0.02), (FILLET_2_R, 0))
        make_face()
    extrude(amount=74, mode=Mode.SUBTRACT)
    with BuildSketch(Plane(origin=(0, 52.349581689, 16.93140839), x_dir=(0, 0.18736828457892515, -0.9822897362458548), z_dir=(0, -0.9822897362458548, -0.18736828457892515))) as fillet_2_piece_8:
        with BuildLine():
            CenterArc((FILLET_2_R, FILLET_2_R), FILLET_2_R, 180, 90)
            Line((0, FILLET_2_R), (-FILLET_2_R * 0.02, FILLET_2_R))
            Line((-FILLET_2_R * 0.02, FILLET_2_R), (-FILLET_2_R * 0.02, -FILLET_2_R * 0.02))
            Line((-FILLET_2_R * 0.02, -FILLET_2_R * 0.02), (FILLET_2_R, -FILLET_2_R * 0.02))
            Line((FILLET_2_R, -FILLET_2_R * 0.02), (FILLET_2_R, 0))
        make_face()
    extrude(amount=60.203274392, mode=Mode.SUBTRACT)

    # 圆角3
    fillet_3_edges = [part.edges().sort_by_distance(p)[0] for p in [
        (20.1, 10, 4),
    ]]
    fillet(fillet_3_edges, radius=FILLET_3_R)


solid = part.part
